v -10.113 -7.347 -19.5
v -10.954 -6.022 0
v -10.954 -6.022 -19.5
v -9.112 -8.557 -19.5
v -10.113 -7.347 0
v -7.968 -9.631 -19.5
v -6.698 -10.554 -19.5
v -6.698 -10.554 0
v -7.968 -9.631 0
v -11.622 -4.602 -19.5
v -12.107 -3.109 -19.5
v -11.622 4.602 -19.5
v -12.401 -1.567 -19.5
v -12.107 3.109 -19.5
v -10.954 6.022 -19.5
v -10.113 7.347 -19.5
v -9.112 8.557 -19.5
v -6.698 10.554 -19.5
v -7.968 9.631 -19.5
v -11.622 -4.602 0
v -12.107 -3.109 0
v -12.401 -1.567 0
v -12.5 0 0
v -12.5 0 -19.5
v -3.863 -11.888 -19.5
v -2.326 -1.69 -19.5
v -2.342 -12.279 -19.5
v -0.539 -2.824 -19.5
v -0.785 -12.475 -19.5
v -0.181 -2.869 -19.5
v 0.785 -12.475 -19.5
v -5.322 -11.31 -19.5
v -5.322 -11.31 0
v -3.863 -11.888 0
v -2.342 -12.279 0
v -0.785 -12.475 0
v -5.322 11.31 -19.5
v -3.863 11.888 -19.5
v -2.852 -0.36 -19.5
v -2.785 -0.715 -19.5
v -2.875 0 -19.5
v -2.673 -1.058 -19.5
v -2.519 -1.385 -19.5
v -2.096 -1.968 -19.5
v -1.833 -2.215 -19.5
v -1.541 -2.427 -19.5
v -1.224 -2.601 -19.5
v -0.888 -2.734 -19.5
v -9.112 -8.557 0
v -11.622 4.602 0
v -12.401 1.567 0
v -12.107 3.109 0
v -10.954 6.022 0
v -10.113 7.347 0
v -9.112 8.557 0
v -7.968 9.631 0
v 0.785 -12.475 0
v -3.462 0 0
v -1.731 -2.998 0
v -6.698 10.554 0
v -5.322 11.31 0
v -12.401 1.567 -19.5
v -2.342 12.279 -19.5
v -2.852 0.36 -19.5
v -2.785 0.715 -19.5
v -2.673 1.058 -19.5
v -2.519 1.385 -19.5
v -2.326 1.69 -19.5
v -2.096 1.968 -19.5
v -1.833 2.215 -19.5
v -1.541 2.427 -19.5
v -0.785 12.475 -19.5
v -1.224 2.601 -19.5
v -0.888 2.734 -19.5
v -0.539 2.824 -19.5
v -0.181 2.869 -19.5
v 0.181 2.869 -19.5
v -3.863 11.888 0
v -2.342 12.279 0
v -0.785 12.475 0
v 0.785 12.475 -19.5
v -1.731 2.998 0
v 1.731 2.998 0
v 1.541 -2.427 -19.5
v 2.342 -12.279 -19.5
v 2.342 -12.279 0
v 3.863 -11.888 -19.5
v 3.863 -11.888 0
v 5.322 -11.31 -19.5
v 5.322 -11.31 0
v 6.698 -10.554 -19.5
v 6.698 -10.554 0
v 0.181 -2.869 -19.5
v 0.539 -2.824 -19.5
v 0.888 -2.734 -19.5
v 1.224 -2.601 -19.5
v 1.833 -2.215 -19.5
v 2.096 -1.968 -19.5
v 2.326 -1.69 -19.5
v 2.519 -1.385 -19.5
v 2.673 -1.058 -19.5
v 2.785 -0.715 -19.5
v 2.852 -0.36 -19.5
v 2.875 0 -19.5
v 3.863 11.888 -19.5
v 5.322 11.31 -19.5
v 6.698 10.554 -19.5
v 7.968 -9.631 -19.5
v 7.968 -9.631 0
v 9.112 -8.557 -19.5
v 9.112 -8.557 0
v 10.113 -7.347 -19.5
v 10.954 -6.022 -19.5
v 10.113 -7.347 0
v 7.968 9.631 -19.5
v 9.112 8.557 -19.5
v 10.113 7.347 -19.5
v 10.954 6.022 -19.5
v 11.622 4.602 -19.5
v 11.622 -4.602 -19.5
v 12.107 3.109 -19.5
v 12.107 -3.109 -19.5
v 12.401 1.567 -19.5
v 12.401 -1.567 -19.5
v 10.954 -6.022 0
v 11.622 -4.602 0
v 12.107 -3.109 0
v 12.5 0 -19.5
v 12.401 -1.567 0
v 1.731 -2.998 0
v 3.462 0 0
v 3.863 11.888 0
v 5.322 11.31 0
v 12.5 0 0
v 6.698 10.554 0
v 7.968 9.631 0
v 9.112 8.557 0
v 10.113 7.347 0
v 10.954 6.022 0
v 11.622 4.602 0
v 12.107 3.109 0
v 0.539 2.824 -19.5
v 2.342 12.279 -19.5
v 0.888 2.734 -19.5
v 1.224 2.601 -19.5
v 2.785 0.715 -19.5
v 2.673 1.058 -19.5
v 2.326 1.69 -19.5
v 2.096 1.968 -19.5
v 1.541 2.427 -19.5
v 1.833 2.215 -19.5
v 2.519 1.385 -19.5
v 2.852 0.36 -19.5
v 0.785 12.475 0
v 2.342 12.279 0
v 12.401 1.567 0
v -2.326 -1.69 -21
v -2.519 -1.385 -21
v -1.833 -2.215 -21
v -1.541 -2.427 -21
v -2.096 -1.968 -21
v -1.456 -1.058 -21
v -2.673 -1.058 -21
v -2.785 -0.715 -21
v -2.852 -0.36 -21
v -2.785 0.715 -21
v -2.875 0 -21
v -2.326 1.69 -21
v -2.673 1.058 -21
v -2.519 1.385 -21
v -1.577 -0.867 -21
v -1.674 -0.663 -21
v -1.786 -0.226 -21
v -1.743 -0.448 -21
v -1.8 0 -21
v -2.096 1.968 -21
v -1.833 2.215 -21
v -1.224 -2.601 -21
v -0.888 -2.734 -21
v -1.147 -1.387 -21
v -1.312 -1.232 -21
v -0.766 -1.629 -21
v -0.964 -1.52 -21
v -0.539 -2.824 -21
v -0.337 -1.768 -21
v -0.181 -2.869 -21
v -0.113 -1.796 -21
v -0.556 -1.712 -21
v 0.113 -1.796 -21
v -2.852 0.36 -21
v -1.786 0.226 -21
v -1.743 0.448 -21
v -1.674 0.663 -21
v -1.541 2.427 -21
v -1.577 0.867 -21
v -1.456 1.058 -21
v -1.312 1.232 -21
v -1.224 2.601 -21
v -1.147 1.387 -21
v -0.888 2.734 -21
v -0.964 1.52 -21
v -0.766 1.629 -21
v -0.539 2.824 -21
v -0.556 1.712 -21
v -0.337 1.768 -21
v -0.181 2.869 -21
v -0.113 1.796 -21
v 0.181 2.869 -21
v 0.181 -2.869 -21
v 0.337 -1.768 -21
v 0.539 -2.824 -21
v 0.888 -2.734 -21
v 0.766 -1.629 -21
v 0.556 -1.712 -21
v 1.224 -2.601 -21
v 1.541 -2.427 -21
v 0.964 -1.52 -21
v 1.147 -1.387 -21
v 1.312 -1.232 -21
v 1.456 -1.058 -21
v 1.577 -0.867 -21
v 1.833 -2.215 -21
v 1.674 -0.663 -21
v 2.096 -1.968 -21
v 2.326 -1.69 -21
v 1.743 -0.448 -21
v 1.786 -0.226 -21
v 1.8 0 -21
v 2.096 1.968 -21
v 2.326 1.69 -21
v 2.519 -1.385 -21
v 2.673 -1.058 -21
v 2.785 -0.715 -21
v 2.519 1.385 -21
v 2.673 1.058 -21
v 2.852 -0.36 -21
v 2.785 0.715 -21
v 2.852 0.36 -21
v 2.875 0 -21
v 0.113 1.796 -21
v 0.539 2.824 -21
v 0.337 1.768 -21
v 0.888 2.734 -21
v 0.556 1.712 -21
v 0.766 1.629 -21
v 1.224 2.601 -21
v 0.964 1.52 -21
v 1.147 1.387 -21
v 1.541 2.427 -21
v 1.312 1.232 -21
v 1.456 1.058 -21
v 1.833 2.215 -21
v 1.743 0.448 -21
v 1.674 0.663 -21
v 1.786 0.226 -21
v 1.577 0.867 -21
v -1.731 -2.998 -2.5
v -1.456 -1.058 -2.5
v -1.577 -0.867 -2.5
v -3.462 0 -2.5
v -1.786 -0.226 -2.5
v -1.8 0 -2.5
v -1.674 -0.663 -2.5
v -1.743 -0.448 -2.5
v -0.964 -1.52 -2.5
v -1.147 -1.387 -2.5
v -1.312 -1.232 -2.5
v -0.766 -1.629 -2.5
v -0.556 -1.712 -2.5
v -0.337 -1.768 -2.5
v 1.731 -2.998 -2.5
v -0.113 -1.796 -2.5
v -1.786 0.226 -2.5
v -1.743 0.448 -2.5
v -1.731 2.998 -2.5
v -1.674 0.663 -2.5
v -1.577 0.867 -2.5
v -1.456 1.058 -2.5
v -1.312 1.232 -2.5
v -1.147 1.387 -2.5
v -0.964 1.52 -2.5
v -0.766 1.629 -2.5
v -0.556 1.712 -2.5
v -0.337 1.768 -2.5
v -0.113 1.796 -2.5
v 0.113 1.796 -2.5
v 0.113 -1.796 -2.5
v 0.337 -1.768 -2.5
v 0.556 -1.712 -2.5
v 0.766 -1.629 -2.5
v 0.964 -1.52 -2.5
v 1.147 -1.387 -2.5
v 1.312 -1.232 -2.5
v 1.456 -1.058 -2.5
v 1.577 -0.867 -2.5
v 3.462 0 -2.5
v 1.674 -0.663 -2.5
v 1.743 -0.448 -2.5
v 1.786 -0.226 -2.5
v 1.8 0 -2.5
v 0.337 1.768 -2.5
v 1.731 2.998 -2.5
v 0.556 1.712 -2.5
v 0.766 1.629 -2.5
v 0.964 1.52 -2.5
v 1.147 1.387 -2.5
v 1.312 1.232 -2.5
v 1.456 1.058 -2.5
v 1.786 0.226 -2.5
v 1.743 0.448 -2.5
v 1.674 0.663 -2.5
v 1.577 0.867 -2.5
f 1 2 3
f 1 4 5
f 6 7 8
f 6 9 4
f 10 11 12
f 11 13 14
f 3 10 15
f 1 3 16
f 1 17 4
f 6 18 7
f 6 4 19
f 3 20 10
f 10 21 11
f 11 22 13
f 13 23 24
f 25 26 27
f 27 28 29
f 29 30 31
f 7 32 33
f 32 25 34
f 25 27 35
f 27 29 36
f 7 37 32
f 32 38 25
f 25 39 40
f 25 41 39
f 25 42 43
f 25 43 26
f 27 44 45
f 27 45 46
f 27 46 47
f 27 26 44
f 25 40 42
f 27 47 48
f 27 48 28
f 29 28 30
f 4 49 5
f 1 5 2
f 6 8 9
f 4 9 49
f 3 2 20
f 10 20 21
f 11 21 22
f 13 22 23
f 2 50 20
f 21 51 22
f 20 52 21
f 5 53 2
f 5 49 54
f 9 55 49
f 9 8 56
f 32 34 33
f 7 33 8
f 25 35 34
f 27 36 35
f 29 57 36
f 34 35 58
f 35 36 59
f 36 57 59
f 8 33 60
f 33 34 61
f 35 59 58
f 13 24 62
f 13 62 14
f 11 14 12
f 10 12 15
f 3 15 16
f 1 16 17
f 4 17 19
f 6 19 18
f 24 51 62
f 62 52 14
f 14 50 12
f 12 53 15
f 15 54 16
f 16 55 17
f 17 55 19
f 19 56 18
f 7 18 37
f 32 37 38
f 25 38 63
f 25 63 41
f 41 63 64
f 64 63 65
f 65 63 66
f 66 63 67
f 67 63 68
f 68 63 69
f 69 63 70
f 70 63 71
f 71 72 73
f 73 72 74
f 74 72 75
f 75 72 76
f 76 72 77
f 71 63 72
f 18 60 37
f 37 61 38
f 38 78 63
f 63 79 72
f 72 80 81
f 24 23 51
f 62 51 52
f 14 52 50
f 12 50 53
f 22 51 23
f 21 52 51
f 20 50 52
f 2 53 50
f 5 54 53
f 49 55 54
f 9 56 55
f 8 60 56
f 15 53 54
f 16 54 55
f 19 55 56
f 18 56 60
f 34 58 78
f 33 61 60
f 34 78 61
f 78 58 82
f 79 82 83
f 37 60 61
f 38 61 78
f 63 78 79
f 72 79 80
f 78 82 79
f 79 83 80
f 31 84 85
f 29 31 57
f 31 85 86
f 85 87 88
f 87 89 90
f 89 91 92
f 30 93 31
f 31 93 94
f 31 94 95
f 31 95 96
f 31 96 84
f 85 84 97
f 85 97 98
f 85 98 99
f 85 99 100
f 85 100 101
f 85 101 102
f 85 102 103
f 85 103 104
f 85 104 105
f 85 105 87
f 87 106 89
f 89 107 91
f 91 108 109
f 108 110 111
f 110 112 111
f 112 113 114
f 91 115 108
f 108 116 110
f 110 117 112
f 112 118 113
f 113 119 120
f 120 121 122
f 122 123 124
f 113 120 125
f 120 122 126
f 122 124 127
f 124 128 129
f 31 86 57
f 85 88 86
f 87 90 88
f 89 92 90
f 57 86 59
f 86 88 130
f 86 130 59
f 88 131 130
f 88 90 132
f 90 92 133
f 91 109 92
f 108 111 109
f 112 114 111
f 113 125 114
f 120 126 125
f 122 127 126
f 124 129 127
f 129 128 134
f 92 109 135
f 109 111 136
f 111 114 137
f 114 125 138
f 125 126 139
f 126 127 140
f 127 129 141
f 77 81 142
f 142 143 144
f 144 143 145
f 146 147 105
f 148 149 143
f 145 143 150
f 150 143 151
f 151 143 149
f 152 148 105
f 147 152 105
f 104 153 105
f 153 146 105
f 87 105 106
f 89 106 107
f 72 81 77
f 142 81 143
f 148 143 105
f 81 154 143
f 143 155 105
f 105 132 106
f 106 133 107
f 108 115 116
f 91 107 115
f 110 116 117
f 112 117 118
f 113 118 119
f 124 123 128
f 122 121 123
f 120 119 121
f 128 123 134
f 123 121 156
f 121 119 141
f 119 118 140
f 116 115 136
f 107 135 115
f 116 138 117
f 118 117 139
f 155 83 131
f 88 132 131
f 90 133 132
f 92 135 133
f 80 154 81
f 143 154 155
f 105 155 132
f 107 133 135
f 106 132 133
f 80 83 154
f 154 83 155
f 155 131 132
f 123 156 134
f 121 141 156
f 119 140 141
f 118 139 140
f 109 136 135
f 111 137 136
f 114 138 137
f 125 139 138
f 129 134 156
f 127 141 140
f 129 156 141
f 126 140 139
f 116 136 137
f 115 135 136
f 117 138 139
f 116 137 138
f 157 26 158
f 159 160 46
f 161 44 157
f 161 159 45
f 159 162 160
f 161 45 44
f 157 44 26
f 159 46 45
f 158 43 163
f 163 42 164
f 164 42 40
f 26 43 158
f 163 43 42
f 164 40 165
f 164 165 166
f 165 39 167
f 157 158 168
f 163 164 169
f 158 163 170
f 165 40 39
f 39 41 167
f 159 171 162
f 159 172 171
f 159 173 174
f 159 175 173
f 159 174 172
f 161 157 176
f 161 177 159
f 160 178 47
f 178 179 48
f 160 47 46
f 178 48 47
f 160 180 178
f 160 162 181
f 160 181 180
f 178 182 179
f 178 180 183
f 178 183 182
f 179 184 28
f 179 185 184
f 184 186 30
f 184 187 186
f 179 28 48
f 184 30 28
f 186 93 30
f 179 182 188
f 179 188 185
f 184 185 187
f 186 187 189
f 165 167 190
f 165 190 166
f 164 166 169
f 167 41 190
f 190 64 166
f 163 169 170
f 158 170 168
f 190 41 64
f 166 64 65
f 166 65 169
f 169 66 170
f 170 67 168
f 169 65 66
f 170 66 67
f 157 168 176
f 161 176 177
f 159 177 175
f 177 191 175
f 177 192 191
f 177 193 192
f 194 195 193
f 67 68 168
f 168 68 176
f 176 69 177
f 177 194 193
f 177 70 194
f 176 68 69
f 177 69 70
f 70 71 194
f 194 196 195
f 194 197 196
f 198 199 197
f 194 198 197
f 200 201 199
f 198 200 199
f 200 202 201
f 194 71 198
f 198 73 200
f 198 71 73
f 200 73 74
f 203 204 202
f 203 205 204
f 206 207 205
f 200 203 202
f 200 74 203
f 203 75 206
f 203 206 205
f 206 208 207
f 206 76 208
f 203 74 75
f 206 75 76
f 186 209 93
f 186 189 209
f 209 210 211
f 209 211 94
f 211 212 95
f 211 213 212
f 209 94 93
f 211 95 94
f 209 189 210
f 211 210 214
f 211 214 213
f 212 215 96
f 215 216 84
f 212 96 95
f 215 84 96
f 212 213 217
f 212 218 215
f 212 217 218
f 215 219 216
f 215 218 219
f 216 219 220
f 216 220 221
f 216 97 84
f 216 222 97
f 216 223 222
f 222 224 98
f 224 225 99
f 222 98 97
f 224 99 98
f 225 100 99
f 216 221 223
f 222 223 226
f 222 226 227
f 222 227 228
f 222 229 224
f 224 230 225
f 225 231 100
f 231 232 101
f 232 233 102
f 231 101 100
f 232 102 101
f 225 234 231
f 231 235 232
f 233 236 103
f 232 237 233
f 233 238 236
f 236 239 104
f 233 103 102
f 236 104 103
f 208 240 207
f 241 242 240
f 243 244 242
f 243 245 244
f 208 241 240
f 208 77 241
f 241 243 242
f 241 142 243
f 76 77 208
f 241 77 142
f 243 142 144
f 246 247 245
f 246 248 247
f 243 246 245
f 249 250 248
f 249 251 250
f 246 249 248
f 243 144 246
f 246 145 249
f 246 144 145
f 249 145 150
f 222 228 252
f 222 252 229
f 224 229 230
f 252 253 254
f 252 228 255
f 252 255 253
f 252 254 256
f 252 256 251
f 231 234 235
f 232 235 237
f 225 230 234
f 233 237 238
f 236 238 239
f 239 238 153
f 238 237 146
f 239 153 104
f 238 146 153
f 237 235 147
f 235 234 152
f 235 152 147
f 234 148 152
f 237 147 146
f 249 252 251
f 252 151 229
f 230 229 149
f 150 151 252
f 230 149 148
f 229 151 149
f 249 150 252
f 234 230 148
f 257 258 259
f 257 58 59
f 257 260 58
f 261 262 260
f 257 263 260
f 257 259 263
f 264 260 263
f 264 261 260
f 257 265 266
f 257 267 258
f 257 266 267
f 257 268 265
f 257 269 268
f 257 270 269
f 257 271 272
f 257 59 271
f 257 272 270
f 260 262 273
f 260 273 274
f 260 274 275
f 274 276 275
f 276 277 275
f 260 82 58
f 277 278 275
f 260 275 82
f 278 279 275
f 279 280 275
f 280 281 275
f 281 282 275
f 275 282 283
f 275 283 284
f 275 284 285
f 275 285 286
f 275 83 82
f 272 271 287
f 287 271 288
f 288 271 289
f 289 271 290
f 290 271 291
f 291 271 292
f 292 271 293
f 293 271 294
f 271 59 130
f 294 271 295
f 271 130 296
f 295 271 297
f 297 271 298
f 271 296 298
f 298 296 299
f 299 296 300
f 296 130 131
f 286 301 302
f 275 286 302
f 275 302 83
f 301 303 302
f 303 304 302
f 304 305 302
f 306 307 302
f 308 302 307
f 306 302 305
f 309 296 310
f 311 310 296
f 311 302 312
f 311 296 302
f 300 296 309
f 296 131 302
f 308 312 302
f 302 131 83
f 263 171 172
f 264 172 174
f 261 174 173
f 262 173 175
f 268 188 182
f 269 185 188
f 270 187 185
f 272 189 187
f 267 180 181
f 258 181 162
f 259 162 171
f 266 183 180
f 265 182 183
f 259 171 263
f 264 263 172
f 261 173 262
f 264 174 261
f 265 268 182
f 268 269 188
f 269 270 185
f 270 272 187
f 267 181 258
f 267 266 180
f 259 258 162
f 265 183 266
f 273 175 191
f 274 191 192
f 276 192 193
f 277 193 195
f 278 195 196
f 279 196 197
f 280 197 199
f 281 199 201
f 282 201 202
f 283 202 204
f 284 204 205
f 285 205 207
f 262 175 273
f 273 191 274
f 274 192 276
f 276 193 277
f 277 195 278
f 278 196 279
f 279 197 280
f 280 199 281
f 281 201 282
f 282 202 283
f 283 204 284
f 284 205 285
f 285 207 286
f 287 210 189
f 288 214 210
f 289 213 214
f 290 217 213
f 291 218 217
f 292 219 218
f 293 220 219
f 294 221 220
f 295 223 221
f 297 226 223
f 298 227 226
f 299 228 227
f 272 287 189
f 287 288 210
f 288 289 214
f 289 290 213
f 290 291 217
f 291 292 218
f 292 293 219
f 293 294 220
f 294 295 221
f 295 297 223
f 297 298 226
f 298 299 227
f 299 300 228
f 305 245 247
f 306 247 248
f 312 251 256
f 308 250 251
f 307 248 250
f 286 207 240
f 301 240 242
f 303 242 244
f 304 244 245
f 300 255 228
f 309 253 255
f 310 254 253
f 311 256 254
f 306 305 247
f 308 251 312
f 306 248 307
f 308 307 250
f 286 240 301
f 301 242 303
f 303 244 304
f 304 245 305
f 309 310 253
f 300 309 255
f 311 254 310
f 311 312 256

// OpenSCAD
$fn = 50;

difference() {
	union() {
		translate(v = [0, 0, -19.5]) {
			cylinder(h = 19.5, r = 12.5);
		}
		#translate(v = [0, 0, -21.0]) {
			cylinder(h = 21, r = 2.875);
		}
	}
	union() {
		translate(v = [0, 0, 0]) {
			rotate(a = [0, 0, 0]) {
				difference() {
					union() {
						translate(v = [0, 0, -2.5]) {
							linear_extrude(height = 2.5) {
								polygon(points = [[3.4619999999999997, 0.0], [1.7310000000000003, 2.9981799479017264], [-1.7309999999999992, 2.9981799479017264], [-3.4619999999999997, 4.2397272186481365e-16], [-1.7310000000000014, -2.998179947901726], [1.7309999999999977, -2.9981799479017277]]);
							}
						}
					}
					union();
				}
			}
		}
		#translate(v = [0, 0, -100.0]) {
			cylinder(h = 200, r = 1.8);
		}
	}
}
